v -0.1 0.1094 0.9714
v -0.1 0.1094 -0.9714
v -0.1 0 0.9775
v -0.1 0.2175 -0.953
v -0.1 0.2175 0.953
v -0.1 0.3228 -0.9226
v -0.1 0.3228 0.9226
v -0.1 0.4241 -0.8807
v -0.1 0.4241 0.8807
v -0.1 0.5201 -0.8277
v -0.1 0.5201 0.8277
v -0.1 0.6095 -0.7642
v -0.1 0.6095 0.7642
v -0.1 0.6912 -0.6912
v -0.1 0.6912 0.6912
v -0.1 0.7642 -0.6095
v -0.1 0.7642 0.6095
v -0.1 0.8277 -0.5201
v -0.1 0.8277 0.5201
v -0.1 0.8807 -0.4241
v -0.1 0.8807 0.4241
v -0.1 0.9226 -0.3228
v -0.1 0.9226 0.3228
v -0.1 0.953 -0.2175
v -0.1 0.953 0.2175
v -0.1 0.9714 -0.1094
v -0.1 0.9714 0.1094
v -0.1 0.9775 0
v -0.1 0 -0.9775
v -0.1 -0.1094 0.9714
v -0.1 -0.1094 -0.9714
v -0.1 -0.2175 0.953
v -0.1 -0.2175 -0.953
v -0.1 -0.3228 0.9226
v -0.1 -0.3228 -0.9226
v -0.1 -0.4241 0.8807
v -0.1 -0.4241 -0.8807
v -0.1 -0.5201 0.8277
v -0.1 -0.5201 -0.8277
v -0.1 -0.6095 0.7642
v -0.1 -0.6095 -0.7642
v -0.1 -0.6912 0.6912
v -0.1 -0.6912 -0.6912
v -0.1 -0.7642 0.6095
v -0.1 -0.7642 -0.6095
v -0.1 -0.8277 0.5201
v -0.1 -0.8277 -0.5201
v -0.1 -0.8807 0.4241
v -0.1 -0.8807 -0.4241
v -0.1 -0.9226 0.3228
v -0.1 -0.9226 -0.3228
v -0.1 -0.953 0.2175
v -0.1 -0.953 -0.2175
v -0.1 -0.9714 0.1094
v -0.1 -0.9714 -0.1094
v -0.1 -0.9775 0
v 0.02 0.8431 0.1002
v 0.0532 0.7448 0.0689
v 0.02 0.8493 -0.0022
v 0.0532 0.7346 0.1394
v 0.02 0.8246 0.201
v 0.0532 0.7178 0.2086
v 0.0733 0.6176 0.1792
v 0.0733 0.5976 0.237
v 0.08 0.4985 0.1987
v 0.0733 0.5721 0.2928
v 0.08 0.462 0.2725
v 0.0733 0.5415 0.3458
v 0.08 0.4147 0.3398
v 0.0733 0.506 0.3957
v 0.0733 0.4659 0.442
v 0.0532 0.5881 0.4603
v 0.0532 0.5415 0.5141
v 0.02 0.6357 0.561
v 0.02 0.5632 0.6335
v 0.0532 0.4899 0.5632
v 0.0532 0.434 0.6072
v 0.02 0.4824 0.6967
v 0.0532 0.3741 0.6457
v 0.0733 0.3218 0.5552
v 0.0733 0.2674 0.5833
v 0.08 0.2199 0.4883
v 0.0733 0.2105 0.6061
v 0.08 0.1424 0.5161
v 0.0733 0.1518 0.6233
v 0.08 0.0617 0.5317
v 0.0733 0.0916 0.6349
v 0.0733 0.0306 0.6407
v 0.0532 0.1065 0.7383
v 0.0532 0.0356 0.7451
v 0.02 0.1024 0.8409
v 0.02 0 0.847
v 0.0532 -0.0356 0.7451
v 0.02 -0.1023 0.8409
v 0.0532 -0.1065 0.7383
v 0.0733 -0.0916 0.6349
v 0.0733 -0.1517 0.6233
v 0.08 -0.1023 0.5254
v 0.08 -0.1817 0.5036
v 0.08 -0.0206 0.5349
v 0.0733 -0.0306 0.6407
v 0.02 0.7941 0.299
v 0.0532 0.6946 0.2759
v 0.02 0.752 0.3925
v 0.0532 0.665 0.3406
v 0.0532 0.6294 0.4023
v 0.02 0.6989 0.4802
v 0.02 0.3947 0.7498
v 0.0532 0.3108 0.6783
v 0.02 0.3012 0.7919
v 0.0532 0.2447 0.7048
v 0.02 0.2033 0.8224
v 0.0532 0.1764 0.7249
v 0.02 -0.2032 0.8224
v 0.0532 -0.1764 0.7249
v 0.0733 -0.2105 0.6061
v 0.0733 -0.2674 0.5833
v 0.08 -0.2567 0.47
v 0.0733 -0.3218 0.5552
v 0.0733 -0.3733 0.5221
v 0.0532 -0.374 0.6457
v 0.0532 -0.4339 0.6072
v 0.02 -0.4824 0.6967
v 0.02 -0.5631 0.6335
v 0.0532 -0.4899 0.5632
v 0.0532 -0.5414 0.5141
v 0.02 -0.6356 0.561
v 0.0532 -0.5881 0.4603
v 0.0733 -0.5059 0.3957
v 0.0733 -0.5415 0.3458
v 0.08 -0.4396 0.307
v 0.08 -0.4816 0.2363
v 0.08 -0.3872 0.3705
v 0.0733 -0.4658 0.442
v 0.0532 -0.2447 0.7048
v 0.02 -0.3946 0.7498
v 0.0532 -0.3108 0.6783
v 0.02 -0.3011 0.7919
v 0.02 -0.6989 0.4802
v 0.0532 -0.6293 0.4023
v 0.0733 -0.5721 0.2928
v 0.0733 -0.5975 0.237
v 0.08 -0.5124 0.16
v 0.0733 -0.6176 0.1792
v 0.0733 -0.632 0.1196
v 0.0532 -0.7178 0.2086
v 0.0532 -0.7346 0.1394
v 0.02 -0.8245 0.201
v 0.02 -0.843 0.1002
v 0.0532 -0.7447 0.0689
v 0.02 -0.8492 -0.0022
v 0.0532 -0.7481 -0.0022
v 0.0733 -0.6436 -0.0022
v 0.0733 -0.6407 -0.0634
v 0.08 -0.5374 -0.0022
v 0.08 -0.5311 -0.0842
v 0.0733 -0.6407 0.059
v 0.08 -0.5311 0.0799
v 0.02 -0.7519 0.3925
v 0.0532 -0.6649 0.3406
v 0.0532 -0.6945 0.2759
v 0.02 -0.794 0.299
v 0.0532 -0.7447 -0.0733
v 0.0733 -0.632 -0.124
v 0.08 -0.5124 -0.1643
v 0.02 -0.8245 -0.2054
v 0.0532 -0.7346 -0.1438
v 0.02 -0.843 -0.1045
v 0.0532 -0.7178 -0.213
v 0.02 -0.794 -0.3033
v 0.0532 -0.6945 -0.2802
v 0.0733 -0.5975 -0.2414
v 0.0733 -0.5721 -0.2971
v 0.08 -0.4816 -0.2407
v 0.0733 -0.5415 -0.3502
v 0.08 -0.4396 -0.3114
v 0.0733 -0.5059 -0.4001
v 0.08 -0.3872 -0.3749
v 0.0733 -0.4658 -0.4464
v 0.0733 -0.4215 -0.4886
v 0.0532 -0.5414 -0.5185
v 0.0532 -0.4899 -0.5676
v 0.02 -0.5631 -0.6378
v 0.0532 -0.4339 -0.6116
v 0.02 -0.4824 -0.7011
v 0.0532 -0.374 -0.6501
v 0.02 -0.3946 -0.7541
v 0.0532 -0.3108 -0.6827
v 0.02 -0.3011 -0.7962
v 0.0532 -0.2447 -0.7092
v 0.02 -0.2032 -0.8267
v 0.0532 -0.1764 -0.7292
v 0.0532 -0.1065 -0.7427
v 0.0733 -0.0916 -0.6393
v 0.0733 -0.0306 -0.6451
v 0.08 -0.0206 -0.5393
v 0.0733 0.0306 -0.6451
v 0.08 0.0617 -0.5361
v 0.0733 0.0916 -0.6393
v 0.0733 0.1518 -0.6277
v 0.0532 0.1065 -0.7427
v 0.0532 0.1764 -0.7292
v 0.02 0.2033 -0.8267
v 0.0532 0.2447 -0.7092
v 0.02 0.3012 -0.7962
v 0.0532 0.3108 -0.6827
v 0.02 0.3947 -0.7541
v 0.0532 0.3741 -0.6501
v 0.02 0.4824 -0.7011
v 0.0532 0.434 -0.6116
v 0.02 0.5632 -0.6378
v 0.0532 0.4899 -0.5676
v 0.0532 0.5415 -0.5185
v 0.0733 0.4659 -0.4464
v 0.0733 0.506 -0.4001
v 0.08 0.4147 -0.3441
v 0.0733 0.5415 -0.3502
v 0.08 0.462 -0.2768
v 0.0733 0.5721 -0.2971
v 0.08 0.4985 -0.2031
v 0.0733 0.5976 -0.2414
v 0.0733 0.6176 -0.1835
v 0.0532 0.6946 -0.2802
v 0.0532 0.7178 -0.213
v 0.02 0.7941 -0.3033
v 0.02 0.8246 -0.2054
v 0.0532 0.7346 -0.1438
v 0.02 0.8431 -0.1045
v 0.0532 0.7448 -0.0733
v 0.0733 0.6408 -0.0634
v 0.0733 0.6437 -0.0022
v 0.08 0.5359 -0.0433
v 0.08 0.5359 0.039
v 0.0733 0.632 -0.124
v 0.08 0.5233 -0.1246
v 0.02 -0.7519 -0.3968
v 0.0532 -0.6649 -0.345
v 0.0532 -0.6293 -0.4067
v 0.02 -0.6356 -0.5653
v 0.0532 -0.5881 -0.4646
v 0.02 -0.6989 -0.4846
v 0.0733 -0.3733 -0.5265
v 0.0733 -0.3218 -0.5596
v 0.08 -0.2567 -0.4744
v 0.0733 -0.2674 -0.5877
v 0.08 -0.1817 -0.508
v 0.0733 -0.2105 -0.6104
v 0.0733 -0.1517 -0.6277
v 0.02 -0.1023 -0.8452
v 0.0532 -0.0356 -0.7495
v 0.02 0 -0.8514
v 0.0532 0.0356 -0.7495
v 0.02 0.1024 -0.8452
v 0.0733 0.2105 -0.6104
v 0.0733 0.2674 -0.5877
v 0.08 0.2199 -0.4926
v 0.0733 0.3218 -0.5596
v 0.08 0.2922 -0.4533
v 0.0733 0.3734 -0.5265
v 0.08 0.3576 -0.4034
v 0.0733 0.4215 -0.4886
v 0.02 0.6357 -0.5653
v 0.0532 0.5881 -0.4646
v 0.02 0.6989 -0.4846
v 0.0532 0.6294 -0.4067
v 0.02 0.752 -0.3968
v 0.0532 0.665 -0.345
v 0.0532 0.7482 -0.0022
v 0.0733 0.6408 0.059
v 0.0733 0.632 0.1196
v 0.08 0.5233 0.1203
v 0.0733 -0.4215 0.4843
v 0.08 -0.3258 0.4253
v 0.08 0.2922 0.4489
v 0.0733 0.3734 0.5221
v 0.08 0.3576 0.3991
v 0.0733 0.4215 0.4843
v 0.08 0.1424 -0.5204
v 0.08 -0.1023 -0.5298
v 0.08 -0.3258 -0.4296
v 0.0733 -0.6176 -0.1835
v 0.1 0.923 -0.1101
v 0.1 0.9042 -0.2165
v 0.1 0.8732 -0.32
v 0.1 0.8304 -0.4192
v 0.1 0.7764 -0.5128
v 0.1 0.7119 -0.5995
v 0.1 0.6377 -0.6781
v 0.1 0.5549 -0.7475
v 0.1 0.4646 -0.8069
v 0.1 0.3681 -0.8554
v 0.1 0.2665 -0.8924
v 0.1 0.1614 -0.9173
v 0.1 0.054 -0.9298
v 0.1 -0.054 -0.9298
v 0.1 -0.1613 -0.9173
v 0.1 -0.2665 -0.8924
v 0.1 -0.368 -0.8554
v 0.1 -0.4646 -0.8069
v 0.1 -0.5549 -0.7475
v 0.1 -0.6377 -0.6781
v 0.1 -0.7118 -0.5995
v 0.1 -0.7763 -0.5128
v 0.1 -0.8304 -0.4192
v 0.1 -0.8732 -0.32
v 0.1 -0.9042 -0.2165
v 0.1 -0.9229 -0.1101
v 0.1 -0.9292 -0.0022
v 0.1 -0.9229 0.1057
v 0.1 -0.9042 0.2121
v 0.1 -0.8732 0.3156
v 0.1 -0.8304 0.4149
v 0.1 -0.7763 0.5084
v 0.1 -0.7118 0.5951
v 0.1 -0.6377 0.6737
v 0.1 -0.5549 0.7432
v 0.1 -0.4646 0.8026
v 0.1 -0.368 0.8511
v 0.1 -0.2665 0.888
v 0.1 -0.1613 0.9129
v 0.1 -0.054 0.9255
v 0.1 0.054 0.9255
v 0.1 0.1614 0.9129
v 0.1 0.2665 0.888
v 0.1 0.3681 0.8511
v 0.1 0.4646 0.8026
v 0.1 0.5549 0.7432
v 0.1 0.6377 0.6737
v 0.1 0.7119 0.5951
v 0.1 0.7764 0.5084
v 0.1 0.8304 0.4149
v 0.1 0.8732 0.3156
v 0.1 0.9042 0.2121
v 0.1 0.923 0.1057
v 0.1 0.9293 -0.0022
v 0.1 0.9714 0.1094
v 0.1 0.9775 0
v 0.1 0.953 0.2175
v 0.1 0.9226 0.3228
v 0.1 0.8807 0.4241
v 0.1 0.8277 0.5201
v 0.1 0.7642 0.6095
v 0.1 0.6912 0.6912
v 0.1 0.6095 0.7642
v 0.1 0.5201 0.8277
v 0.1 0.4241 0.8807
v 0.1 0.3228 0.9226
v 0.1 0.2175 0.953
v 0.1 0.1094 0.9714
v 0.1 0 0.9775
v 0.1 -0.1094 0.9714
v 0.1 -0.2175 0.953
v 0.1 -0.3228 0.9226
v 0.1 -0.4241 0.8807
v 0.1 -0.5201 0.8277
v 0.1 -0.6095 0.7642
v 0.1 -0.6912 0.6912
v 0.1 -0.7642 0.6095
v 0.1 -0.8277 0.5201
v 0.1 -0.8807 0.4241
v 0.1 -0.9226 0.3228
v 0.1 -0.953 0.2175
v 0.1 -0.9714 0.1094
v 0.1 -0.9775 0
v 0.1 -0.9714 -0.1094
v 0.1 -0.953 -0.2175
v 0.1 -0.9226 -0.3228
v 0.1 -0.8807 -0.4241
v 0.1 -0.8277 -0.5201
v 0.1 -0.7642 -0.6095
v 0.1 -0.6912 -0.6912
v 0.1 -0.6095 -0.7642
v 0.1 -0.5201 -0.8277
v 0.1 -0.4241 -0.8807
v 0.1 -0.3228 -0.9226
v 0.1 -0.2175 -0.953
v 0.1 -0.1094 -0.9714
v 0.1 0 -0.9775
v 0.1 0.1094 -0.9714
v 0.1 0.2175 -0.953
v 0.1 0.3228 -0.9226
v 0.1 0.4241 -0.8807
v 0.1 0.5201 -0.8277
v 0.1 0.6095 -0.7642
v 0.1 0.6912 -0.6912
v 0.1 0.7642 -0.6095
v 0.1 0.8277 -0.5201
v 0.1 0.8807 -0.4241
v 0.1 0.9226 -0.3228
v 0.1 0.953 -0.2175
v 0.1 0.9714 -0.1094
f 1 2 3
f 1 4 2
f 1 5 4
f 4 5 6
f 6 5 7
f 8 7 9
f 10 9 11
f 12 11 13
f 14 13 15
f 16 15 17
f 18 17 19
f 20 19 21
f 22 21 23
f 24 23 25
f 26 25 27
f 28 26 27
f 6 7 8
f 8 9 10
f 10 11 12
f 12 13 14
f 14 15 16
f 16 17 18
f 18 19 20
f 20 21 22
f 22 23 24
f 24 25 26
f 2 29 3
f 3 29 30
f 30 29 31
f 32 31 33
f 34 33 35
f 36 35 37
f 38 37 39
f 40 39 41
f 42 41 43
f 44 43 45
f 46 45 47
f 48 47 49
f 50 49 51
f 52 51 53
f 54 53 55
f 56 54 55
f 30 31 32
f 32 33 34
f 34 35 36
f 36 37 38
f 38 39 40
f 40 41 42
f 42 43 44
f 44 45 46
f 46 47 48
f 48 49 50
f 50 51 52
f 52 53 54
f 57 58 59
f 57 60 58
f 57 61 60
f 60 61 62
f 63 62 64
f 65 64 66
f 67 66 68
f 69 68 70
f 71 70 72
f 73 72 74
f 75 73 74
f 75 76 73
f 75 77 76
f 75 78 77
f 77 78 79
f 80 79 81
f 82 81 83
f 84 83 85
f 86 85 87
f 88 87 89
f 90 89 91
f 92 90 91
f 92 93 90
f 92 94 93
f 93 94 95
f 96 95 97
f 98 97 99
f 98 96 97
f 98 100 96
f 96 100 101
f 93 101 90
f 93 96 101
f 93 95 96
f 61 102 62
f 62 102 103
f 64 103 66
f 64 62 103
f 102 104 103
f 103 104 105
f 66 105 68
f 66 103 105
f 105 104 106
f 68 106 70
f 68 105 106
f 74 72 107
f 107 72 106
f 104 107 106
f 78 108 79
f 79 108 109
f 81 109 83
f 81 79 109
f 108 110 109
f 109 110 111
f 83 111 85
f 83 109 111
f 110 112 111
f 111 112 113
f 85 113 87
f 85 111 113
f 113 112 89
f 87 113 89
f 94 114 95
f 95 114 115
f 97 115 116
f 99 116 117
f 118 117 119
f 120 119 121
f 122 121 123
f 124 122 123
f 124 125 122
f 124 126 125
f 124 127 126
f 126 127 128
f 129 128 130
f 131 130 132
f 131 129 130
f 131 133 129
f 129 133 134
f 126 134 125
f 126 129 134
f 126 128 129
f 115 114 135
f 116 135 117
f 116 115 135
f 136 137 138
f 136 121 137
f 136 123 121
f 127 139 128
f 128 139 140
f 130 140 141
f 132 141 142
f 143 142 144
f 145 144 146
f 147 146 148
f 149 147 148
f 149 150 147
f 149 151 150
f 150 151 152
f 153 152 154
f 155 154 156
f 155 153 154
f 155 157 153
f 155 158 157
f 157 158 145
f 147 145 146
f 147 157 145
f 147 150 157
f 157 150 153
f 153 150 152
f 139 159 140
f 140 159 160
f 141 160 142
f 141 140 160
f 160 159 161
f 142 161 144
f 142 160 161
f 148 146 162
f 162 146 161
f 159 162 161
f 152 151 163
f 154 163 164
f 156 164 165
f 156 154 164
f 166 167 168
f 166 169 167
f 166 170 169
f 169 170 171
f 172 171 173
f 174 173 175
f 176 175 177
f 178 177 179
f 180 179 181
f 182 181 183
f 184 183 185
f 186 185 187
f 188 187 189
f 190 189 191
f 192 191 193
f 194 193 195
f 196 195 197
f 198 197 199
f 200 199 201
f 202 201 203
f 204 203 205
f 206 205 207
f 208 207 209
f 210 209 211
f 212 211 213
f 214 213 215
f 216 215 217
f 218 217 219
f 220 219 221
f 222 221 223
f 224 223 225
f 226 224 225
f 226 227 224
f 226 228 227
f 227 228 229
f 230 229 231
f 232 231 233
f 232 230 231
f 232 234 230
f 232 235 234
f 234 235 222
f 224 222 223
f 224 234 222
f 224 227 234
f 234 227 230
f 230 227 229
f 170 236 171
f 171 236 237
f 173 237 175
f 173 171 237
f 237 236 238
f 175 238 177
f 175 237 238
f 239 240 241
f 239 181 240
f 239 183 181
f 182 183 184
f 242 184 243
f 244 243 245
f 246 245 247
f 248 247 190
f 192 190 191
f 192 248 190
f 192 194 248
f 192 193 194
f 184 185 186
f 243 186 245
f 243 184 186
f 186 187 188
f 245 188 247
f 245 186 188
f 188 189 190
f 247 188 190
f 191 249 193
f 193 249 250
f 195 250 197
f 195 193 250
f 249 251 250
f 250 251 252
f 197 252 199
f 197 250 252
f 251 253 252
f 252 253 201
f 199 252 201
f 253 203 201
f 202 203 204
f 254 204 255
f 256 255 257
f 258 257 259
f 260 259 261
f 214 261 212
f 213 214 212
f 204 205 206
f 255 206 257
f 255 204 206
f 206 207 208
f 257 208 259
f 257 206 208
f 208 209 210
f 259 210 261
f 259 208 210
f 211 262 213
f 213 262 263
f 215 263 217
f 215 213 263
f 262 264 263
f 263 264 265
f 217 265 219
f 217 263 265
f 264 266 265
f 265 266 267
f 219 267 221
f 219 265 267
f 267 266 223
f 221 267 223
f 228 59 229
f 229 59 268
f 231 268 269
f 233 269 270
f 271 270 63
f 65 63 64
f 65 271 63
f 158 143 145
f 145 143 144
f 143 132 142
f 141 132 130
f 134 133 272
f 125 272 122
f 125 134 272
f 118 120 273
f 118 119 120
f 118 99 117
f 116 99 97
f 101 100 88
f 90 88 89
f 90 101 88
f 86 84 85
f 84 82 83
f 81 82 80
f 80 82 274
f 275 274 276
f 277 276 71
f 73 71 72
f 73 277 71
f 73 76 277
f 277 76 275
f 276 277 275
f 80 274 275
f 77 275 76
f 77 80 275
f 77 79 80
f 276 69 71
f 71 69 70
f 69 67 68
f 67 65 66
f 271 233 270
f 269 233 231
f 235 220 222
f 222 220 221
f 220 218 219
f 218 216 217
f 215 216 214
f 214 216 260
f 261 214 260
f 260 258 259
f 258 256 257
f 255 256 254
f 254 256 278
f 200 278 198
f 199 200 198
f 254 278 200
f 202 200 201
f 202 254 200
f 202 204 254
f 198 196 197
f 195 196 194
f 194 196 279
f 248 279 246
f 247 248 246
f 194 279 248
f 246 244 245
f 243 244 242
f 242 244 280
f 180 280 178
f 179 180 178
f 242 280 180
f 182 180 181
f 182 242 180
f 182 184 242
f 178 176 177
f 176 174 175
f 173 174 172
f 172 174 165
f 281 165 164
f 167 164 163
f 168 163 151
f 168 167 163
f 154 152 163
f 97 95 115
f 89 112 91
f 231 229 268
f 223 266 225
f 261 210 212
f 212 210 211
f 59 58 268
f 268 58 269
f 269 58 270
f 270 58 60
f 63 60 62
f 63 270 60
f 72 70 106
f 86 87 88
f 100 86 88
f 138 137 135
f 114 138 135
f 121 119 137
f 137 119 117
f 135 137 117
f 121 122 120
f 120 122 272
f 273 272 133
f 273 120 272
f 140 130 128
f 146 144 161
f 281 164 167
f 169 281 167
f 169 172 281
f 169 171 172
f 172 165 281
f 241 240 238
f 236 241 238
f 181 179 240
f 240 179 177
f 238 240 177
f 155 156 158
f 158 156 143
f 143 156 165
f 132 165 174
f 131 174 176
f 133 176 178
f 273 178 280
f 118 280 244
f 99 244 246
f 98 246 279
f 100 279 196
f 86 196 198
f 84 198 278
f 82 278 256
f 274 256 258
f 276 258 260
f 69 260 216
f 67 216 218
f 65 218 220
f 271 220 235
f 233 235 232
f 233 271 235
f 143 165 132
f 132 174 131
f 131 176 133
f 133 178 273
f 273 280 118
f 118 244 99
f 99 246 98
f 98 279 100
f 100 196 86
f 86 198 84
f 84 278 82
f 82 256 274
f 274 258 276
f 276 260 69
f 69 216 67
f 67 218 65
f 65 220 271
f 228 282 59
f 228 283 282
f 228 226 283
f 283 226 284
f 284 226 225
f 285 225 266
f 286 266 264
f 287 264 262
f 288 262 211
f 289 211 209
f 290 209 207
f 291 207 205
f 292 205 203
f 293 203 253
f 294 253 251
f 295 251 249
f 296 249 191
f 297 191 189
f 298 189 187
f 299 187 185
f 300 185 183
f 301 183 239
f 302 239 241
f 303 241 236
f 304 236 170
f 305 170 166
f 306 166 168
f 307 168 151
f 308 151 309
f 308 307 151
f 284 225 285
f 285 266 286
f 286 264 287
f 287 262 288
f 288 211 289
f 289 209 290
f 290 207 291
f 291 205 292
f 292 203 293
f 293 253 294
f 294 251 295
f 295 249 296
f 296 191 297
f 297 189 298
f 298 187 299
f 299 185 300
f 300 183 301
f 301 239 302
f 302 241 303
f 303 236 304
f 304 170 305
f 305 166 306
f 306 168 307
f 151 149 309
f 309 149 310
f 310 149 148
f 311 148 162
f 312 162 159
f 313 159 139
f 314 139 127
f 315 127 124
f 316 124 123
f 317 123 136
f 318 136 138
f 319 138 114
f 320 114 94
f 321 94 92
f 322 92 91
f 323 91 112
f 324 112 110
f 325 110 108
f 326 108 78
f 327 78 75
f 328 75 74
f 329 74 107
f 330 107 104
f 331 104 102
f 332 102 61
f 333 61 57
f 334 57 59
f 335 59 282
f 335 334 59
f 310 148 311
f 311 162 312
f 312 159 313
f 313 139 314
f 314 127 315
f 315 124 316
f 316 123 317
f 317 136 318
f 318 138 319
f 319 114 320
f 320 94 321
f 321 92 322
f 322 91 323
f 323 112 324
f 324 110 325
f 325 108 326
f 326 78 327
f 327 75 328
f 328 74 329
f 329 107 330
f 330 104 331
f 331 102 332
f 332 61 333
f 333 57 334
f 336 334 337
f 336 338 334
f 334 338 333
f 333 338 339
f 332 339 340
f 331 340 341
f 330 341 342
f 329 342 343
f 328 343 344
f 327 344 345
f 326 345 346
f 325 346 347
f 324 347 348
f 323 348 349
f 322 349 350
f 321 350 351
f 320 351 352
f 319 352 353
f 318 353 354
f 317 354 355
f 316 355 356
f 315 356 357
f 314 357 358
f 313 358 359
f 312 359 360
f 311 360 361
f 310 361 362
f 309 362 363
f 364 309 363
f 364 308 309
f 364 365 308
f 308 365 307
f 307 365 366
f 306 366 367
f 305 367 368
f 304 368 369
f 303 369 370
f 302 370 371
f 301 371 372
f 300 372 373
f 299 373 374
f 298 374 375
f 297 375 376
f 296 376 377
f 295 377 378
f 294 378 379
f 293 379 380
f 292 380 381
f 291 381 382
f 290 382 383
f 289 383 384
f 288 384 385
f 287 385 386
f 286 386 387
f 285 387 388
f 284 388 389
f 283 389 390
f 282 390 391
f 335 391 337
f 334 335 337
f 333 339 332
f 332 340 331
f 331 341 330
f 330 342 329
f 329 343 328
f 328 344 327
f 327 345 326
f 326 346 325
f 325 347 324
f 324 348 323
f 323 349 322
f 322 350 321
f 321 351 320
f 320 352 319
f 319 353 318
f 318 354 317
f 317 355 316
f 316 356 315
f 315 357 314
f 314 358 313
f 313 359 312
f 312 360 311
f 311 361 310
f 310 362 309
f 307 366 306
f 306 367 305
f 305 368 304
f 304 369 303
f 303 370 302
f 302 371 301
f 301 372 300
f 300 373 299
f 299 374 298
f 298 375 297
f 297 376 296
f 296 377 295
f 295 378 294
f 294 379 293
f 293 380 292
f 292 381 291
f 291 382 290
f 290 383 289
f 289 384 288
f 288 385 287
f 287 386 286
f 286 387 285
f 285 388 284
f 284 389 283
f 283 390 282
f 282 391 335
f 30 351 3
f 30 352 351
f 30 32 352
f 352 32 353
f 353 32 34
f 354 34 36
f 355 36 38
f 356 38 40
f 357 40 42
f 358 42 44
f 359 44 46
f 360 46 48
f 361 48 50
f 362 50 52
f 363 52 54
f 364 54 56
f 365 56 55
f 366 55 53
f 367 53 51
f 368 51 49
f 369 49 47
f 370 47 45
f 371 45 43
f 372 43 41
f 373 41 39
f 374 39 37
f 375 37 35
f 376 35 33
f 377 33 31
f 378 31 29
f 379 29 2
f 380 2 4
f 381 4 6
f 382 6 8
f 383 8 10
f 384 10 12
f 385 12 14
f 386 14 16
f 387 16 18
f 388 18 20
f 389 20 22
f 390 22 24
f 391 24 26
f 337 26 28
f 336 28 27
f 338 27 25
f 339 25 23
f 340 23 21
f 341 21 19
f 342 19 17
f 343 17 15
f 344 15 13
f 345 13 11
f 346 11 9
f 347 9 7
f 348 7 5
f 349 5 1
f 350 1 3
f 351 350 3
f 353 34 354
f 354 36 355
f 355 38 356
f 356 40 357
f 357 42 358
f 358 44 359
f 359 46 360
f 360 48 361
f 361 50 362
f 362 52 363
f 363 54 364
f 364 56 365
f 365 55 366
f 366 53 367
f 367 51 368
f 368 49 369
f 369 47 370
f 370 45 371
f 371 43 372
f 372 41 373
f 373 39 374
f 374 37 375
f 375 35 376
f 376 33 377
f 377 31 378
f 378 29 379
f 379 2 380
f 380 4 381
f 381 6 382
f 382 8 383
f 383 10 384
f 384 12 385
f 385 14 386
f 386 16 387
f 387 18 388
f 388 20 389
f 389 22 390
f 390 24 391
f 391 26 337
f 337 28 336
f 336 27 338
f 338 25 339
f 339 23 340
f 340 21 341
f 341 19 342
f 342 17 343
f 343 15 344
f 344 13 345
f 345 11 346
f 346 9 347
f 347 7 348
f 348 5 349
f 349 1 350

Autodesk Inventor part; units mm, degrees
ref_plane "YZ Plane" through (0, 0, 0) normal (1, 0, 0) x (0, 1, 0)
ref_plane "XZ Plane" through (0, 0, 0) normal (0, 1, 0) x (-1, 0, 0)
ref_plane "XY Plane" through (0, 0, 0) normal (0, 0, 1) x (1, 0, 0)
sketch "Boceto1" plane through (0, 0, 0) normal (1, 0, 0) x (0, 1, 0)
  circle A0 centre (0, -0.0022) radius 0.8492
  circle A1 centre (0, 0) radius 0.9775
  circle A2 centre (0, 0) radius 0.925
  dimension "d1" = 1.85
extrude "Extrusión1" add sketch "Boceto1" along normal blind 0.1 contours A1
sketch "Boceto2" plane through (0, 0, 0) normal (1, 0, 0) x (0, 1, 0)
  circle A0 centre (0, -0.0022) radius 0.8492
  circle A1 centre (0, 0) radius 0.9775
  circle A2 centre (0, 0) radius 0.925 projected
extrude "Extrusión2" add sketch "Boceto2" along normal blind 0.1 contours A2
chamfer "Chaflán1" distance 0.08 angle 45 1 edges at (0.1, -0.8492, -0.0022)
sketch "Boceto3" plane through (0, 0, 0) normal (1, 0, 0) x (0, 1, 0)
  circle A0 centre (0, -0.0022) radius 0.8492 projected
  point P0 (0, 0)
extrude "Extrusión3" add sketch "Boceto3" along normal blind 0.08
fillet "Empalme1" radius 0.84 1 edges at (0.08, -0.8492, -0.0022)
sketch "Boceto4" plane through (0, 0, 0) normal (-1, 0, 0) x (0, 0, 1)
  line L0 (-0.8864, -0.025) -> (-0.9364, -0.025)
  line L1 (-0.9364, -0.025) -> (-0.9364, 0.025)
  line L2 (-0.9364, 0.025) -> (-0.8864, 0.025)
  line L3 (-0.8864, 0.025) -> (-0.8864, -0.025)
  line L4 (0.8864, 0.025) -> (0.9364, 0.025)
  line L5 (0.9364, 0.025) -> (0.9364, -0.025)
  line L6 (0.9364, -0.025) -> (0.8864, -0.025)
  line L7 (0.8864, -0.025) -> (0.8864, 0.025)
  circle A0 centre (0, 0) radius 0.9775
extrude "Extrusión4" add sketch "Boceto4" along normal blind 0.1 contours L0 L1 L2 L3 | L4 L5 L6 L7
sketch "Boceto5" plane through (0, 0, 0) normal (-1, 0, 0) x (0, 0, 1)
  line L0 (-0.9364, -0.025) -> (-0.9364, 0.025) projected
  line L1 (-0.9364, 0.025) -> (-0.8864, 0.025) projected
  line L2 (-0.8864, 0.025) -> (-0.8864, -0.025) projected
  line L3 (-0.8864, -0.025) -> (-0.9364, -0.025) projected
  line L4 (0.9364, 0.025) -> (0.9364, -0.025) projected
  line L5 (0.9364, -0.025) -> (0.8864, -0.025) projected
  line L6 (0.8864, -0.025) -> (0.8864, 0.025) projected
  line L7 (0.8864, 0.025) -> (0.9364, 0.025) projected
  circle A0 centre (0, 0) radius 0.9775 projected
extrude "Extrusión5" add sketch "Boceto5" along normal blind 0.1
properties part number "ET20"
